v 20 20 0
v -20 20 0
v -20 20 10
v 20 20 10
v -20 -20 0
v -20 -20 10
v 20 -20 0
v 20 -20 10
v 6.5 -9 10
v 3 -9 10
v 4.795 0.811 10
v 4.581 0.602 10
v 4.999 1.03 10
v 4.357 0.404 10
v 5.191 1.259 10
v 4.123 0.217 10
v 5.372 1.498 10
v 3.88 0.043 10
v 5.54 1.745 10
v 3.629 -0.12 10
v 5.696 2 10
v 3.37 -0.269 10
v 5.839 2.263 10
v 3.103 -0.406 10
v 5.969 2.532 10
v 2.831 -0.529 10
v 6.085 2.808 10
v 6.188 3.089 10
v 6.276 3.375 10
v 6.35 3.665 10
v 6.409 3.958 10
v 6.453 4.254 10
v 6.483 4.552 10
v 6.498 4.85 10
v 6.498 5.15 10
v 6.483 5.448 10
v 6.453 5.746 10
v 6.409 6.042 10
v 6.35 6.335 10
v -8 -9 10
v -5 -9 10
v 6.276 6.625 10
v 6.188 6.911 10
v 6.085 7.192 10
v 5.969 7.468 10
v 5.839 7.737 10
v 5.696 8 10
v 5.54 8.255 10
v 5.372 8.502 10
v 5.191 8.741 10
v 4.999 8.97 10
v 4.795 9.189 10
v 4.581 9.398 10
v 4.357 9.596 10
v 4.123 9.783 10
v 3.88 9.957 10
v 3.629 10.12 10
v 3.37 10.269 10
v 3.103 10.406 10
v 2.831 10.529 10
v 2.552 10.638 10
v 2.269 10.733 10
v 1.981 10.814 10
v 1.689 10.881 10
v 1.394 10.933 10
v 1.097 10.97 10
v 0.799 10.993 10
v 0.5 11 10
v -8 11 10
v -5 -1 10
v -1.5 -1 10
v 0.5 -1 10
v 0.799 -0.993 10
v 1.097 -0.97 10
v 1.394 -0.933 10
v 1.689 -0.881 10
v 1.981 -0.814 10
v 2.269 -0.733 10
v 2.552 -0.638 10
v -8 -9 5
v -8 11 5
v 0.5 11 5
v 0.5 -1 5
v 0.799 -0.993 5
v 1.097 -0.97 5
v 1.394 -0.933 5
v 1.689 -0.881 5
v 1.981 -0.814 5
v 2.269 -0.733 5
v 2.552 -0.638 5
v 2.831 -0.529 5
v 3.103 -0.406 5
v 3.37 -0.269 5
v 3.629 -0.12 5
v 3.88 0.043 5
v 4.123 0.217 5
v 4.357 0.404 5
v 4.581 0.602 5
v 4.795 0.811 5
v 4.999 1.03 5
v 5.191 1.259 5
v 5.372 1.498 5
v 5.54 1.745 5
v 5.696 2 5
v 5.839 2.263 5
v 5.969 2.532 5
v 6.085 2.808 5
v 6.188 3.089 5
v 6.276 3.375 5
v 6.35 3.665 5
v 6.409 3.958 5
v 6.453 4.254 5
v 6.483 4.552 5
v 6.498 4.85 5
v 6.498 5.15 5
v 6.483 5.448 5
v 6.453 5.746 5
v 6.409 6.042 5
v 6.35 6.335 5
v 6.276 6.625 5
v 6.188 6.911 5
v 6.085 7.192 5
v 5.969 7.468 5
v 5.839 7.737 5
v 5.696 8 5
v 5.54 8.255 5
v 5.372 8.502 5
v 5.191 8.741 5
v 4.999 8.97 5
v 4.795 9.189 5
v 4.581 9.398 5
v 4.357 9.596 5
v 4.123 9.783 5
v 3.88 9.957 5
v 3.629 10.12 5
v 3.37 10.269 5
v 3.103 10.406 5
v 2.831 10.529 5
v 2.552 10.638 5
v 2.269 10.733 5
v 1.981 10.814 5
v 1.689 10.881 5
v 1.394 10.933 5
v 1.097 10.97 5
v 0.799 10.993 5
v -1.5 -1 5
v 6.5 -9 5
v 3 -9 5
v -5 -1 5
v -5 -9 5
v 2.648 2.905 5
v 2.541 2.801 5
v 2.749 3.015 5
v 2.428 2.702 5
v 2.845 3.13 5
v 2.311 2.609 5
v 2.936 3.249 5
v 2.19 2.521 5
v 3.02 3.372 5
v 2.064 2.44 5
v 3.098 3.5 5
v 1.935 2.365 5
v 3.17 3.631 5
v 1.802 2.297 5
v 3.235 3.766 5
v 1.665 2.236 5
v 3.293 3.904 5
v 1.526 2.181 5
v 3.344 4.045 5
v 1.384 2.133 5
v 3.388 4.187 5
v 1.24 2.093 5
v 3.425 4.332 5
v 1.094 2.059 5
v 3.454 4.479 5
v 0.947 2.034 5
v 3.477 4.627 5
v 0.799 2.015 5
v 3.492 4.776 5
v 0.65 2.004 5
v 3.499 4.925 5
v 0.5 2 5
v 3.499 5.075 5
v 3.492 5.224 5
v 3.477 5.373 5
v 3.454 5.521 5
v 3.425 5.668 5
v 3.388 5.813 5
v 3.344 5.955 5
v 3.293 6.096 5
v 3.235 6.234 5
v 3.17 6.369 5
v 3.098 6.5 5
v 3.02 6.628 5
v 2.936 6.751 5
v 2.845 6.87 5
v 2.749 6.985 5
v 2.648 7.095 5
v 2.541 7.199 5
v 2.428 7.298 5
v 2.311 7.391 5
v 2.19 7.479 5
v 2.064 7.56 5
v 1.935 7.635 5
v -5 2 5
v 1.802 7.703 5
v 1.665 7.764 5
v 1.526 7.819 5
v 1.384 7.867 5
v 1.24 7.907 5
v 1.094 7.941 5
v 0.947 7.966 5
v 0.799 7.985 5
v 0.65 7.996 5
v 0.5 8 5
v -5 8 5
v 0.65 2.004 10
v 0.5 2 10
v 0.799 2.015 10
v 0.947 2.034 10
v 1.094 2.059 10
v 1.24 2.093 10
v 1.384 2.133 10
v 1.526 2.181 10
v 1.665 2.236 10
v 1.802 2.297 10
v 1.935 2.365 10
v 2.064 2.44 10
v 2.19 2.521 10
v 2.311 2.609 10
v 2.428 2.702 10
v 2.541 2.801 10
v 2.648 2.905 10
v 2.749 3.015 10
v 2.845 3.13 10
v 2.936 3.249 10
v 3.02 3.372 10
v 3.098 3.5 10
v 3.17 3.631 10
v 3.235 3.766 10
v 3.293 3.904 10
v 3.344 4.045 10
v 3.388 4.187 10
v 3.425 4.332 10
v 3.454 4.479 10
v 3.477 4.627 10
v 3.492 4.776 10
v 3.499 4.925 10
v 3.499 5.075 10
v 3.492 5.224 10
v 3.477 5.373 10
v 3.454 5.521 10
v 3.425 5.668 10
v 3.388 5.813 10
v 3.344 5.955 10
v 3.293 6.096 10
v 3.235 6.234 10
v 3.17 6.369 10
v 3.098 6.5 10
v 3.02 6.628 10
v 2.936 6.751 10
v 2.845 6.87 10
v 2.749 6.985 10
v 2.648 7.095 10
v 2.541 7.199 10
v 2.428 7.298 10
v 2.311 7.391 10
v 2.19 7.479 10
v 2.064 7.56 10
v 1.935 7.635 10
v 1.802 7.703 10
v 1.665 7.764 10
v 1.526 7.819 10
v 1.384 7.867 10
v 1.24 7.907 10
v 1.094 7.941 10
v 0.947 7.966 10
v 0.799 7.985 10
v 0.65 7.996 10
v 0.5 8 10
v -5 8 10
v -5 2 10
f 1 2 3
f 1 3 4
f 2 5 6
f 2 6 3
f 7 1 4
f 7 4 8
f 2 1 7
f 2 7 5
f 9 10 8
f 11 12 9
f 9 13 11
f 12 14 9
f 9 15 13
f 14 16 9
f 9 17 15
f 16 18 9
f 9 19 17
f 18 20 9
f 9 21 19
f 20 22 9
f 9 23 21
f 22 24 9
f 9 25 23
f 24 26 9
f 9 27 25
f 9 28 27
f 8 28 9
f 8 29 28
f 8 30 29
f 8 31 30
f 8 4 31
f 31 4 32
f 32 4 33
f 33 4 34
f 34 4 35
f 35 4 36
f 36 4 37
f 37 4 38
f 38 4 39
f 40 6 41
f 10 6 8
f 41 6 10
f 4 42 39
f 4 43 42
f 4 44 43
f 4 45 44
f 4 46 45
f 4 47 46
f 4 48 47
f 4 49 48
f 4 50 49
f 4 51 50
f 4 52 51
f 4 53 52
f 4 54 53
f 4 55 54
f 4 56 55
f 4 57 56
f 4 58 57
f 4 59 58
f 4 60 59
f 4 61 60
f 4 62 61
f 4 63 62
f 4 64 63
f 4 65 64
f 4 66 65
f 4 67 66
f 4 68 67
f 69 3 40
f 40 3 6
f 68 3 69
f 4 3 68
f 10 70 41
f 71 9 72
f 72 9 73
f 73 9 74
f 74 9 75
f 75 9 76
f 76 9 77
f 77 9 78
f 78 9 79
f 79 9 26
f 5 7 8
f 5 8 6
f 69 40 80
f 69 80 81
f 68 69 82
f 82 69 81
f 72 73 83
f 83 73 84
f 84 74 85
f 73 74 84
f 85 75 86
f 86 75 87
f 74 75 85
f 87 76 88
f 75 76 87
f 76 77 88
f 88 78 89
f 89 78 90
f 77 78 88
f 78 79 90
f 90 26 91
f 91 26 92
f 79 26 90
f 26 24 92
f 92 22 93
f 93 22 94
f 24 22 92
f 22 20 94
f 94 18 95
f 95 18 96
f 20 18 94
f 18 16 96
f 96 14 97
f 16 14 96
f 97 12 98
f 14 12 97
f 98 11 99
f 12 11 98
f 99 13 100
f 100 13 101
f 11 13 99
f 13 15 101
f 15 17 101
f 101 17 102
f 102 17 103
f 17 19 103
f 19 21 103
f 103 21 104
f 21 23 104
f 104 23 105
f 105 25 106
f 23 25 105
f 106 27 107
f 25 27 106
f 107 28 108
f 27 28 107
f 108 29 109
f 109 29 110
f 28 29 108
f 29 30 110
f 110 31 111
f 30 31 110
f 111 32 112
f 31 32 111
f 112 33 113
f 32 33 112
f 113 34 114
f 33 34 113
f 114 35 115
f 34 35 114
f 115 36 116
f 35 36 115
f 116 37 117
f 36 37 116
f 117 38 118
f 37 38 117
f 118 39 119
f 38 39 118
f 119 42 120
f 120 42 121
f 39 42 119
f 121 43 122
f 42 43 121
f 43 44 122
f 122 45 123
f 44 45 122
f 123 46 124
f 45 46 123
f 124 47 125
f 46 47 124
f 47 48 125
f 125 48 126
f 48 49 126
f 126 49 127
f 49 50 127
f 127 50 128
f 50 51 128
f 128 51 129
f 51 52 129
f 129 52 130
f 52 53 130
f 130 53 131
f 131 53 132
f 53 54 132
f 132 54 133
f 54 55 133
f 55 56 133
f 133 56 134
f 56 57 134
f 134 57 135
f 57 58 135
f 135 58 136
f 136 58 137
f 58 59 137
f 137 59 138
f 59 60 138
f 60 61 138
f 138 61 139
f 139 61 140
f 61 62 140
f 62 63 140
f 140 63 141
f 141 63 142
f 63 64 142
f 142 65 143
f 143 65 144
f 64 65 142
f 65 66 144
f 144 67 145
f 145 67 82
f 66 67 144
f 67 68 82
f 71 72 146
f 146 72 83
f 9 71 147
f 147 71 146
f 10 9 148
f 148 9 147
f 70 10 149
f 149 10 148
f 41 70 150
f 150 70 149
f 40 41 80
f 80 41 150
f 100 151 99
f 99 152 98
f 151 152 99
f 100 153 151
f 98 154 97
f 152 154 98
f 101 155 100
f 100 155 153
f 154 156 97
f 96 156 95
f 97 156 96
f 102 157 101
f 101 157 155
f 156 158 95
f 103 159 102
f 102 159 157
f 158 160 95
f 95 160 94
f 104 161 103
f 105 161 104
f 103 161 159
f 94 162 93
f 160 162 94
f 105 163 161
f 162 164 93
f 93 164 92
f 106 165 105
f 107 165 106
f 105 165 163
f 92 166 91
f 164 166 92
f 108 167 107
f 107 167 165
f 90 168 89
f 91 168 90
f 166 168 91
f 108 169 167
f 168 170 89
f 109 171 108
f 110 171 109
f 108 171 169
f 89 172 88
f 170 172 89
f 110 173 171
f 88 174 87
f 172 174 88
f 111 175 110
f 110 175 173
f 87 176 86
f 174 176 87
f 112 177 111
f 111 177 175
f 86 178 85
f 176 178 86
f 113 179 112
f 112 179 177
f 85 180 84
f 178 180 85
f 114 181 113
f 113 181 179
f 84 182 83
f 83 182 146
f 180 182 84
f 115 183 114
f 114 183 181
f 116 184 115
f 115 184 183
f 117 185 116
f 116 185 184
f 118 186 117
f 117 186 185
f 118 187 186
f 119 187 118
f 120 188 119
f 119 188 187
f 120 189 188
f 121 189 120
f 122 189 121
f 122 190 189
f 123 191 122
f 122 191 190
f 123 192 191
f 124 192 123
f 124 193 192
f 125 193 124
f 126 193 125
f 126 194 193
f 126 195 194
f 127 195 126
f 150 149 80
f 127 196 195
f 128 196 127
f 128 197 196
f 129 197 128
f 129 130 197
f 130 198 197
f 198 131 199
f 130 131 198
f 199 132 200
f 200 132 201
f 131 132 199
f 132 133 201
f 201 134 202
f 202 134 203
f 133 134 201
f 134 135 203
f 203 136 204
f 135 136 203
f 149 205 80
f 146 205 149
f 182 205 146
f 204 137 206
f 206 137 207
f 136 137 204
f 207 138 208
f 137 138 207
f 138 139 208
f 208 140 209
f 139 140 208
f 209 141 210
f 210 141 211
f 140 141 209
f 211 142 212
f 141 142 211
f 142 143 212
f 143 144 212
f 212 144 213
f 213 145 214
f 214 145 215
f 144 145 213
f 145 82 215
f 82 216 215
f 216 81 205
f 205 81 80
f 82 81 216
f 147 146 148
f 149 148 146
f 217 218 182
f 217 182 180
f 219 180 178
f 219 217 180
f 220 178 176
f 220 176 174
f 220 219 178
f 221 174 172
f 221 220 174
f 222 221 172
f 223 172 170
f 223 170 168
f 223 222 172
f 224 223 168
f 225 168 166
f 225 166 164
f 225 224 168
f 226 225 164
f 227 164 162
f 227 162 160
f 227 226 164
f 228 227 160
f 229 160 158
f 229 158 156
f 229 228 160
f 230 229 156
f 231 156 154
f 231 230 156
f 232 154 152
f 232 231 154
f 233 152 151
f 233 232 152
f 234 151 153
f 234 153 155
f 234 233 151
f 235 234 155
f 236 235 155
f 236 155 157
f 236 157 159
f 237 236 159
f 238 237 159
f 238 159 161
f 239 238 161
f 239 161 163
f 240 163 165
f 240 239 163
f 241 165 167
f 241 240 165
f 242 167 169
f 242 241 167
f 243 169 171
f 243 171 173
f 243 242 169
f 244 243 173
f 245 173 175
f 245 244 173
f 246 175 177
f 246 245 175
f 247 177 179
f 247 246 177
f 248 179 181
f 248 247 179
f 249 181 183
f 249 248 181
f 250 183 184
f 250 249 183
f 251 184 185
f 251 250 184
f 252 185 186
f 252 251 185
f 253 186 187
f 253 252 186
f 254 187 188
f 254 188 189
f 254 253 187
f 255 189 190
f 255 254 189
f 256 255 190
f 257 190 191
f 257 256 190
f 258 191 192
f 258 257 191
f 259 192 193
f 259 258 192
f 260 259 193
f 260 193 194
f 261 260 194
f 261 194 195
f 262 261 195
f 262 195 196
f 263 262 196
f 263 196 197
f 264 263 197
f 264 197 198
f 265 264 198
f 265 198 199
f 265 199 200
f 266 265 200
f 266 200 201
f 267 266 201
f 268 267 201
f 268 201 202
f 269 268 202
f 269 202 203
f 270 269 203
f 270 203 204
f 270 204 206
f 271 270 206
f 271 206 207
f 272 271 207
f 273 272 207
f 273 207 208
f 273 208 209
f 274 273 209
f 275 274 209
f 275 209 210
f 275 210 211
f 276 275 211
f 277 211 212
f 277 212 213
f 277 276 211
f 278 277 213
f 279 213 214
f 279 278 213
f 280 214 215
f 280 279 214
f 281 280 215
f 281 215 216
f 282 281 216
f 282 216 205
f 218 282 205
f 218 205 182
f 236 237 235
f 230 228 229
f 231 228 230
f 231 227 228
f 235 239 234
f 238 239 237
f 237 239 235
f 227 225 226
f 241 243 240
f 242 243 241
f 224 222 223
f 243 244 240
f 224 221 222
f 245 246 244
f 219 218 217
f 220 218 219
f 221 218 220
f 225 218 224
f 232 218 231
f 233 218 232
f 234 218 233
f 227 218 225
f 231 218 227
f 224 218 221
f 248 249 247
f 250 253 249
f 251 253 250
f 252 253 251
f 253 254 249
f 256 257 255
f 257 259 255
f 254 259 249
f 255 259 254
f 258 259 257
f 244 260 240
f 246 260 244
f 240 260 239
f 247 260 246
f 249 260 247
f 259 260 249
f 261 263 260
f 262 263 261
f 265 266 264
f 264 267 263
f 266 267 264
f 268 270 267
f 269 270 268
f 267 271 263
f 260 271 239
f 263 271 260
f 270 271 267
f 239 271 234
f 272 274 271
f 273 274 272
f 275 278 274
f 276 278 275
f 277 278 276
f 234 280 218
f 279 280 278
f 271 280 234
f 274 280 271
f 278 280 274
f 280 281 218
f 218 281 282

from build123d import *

# Parameters (mm, degrees)
SKETCH_W     = 40
SKETCH_H     = 40
PAD_DEPTH    = 10
POCKET_DEPTH = 5


with BuildPart() as part:
    # Sketch → Pad (new body)
    with BuildSketch(Plane.XY):
        Rectangle(SKETCH_W, SKETCH_H)
    extrude(amount=PAD_DEPTH)

    # Sketch001 (on Face6 of Pad) → Pocket (cut)
    with BuildSketch(Plane.XY.offset(10)):
        with BuildLine():
            Line((-8, -9), (-8, 11))
            Line((0.5, 11), (-8, 11))
            ThreePointArc((0.5, -1), (6.5, 5), (0.5, 11))
            Line((-1.5, -1), (0.5, -1))
            Line((6.5, -9), (-1.5, -1))
            Line((3, -9), (6.5, -9))
            Line((-5, -1), (3, -9))
            Line((-5, -9), (-5, -1))
            Line((-8, -9), (-5, -9))
        make_face()
        with BuildLine():
            ThreePointArc((0.5, 2), (3.5, 5), (0.5, 8))
            Line((0.5, 8), (-5, 8))
            Line((-5, 8), (-5, 2))
            Line((-5, 2), (0.5, 2))
        make_face(mode=Mode.SUBTRACT)
    extrude(amount=-POCKET_DEPTH, mode=Mode.SUBTRACT)


solid = part.part
